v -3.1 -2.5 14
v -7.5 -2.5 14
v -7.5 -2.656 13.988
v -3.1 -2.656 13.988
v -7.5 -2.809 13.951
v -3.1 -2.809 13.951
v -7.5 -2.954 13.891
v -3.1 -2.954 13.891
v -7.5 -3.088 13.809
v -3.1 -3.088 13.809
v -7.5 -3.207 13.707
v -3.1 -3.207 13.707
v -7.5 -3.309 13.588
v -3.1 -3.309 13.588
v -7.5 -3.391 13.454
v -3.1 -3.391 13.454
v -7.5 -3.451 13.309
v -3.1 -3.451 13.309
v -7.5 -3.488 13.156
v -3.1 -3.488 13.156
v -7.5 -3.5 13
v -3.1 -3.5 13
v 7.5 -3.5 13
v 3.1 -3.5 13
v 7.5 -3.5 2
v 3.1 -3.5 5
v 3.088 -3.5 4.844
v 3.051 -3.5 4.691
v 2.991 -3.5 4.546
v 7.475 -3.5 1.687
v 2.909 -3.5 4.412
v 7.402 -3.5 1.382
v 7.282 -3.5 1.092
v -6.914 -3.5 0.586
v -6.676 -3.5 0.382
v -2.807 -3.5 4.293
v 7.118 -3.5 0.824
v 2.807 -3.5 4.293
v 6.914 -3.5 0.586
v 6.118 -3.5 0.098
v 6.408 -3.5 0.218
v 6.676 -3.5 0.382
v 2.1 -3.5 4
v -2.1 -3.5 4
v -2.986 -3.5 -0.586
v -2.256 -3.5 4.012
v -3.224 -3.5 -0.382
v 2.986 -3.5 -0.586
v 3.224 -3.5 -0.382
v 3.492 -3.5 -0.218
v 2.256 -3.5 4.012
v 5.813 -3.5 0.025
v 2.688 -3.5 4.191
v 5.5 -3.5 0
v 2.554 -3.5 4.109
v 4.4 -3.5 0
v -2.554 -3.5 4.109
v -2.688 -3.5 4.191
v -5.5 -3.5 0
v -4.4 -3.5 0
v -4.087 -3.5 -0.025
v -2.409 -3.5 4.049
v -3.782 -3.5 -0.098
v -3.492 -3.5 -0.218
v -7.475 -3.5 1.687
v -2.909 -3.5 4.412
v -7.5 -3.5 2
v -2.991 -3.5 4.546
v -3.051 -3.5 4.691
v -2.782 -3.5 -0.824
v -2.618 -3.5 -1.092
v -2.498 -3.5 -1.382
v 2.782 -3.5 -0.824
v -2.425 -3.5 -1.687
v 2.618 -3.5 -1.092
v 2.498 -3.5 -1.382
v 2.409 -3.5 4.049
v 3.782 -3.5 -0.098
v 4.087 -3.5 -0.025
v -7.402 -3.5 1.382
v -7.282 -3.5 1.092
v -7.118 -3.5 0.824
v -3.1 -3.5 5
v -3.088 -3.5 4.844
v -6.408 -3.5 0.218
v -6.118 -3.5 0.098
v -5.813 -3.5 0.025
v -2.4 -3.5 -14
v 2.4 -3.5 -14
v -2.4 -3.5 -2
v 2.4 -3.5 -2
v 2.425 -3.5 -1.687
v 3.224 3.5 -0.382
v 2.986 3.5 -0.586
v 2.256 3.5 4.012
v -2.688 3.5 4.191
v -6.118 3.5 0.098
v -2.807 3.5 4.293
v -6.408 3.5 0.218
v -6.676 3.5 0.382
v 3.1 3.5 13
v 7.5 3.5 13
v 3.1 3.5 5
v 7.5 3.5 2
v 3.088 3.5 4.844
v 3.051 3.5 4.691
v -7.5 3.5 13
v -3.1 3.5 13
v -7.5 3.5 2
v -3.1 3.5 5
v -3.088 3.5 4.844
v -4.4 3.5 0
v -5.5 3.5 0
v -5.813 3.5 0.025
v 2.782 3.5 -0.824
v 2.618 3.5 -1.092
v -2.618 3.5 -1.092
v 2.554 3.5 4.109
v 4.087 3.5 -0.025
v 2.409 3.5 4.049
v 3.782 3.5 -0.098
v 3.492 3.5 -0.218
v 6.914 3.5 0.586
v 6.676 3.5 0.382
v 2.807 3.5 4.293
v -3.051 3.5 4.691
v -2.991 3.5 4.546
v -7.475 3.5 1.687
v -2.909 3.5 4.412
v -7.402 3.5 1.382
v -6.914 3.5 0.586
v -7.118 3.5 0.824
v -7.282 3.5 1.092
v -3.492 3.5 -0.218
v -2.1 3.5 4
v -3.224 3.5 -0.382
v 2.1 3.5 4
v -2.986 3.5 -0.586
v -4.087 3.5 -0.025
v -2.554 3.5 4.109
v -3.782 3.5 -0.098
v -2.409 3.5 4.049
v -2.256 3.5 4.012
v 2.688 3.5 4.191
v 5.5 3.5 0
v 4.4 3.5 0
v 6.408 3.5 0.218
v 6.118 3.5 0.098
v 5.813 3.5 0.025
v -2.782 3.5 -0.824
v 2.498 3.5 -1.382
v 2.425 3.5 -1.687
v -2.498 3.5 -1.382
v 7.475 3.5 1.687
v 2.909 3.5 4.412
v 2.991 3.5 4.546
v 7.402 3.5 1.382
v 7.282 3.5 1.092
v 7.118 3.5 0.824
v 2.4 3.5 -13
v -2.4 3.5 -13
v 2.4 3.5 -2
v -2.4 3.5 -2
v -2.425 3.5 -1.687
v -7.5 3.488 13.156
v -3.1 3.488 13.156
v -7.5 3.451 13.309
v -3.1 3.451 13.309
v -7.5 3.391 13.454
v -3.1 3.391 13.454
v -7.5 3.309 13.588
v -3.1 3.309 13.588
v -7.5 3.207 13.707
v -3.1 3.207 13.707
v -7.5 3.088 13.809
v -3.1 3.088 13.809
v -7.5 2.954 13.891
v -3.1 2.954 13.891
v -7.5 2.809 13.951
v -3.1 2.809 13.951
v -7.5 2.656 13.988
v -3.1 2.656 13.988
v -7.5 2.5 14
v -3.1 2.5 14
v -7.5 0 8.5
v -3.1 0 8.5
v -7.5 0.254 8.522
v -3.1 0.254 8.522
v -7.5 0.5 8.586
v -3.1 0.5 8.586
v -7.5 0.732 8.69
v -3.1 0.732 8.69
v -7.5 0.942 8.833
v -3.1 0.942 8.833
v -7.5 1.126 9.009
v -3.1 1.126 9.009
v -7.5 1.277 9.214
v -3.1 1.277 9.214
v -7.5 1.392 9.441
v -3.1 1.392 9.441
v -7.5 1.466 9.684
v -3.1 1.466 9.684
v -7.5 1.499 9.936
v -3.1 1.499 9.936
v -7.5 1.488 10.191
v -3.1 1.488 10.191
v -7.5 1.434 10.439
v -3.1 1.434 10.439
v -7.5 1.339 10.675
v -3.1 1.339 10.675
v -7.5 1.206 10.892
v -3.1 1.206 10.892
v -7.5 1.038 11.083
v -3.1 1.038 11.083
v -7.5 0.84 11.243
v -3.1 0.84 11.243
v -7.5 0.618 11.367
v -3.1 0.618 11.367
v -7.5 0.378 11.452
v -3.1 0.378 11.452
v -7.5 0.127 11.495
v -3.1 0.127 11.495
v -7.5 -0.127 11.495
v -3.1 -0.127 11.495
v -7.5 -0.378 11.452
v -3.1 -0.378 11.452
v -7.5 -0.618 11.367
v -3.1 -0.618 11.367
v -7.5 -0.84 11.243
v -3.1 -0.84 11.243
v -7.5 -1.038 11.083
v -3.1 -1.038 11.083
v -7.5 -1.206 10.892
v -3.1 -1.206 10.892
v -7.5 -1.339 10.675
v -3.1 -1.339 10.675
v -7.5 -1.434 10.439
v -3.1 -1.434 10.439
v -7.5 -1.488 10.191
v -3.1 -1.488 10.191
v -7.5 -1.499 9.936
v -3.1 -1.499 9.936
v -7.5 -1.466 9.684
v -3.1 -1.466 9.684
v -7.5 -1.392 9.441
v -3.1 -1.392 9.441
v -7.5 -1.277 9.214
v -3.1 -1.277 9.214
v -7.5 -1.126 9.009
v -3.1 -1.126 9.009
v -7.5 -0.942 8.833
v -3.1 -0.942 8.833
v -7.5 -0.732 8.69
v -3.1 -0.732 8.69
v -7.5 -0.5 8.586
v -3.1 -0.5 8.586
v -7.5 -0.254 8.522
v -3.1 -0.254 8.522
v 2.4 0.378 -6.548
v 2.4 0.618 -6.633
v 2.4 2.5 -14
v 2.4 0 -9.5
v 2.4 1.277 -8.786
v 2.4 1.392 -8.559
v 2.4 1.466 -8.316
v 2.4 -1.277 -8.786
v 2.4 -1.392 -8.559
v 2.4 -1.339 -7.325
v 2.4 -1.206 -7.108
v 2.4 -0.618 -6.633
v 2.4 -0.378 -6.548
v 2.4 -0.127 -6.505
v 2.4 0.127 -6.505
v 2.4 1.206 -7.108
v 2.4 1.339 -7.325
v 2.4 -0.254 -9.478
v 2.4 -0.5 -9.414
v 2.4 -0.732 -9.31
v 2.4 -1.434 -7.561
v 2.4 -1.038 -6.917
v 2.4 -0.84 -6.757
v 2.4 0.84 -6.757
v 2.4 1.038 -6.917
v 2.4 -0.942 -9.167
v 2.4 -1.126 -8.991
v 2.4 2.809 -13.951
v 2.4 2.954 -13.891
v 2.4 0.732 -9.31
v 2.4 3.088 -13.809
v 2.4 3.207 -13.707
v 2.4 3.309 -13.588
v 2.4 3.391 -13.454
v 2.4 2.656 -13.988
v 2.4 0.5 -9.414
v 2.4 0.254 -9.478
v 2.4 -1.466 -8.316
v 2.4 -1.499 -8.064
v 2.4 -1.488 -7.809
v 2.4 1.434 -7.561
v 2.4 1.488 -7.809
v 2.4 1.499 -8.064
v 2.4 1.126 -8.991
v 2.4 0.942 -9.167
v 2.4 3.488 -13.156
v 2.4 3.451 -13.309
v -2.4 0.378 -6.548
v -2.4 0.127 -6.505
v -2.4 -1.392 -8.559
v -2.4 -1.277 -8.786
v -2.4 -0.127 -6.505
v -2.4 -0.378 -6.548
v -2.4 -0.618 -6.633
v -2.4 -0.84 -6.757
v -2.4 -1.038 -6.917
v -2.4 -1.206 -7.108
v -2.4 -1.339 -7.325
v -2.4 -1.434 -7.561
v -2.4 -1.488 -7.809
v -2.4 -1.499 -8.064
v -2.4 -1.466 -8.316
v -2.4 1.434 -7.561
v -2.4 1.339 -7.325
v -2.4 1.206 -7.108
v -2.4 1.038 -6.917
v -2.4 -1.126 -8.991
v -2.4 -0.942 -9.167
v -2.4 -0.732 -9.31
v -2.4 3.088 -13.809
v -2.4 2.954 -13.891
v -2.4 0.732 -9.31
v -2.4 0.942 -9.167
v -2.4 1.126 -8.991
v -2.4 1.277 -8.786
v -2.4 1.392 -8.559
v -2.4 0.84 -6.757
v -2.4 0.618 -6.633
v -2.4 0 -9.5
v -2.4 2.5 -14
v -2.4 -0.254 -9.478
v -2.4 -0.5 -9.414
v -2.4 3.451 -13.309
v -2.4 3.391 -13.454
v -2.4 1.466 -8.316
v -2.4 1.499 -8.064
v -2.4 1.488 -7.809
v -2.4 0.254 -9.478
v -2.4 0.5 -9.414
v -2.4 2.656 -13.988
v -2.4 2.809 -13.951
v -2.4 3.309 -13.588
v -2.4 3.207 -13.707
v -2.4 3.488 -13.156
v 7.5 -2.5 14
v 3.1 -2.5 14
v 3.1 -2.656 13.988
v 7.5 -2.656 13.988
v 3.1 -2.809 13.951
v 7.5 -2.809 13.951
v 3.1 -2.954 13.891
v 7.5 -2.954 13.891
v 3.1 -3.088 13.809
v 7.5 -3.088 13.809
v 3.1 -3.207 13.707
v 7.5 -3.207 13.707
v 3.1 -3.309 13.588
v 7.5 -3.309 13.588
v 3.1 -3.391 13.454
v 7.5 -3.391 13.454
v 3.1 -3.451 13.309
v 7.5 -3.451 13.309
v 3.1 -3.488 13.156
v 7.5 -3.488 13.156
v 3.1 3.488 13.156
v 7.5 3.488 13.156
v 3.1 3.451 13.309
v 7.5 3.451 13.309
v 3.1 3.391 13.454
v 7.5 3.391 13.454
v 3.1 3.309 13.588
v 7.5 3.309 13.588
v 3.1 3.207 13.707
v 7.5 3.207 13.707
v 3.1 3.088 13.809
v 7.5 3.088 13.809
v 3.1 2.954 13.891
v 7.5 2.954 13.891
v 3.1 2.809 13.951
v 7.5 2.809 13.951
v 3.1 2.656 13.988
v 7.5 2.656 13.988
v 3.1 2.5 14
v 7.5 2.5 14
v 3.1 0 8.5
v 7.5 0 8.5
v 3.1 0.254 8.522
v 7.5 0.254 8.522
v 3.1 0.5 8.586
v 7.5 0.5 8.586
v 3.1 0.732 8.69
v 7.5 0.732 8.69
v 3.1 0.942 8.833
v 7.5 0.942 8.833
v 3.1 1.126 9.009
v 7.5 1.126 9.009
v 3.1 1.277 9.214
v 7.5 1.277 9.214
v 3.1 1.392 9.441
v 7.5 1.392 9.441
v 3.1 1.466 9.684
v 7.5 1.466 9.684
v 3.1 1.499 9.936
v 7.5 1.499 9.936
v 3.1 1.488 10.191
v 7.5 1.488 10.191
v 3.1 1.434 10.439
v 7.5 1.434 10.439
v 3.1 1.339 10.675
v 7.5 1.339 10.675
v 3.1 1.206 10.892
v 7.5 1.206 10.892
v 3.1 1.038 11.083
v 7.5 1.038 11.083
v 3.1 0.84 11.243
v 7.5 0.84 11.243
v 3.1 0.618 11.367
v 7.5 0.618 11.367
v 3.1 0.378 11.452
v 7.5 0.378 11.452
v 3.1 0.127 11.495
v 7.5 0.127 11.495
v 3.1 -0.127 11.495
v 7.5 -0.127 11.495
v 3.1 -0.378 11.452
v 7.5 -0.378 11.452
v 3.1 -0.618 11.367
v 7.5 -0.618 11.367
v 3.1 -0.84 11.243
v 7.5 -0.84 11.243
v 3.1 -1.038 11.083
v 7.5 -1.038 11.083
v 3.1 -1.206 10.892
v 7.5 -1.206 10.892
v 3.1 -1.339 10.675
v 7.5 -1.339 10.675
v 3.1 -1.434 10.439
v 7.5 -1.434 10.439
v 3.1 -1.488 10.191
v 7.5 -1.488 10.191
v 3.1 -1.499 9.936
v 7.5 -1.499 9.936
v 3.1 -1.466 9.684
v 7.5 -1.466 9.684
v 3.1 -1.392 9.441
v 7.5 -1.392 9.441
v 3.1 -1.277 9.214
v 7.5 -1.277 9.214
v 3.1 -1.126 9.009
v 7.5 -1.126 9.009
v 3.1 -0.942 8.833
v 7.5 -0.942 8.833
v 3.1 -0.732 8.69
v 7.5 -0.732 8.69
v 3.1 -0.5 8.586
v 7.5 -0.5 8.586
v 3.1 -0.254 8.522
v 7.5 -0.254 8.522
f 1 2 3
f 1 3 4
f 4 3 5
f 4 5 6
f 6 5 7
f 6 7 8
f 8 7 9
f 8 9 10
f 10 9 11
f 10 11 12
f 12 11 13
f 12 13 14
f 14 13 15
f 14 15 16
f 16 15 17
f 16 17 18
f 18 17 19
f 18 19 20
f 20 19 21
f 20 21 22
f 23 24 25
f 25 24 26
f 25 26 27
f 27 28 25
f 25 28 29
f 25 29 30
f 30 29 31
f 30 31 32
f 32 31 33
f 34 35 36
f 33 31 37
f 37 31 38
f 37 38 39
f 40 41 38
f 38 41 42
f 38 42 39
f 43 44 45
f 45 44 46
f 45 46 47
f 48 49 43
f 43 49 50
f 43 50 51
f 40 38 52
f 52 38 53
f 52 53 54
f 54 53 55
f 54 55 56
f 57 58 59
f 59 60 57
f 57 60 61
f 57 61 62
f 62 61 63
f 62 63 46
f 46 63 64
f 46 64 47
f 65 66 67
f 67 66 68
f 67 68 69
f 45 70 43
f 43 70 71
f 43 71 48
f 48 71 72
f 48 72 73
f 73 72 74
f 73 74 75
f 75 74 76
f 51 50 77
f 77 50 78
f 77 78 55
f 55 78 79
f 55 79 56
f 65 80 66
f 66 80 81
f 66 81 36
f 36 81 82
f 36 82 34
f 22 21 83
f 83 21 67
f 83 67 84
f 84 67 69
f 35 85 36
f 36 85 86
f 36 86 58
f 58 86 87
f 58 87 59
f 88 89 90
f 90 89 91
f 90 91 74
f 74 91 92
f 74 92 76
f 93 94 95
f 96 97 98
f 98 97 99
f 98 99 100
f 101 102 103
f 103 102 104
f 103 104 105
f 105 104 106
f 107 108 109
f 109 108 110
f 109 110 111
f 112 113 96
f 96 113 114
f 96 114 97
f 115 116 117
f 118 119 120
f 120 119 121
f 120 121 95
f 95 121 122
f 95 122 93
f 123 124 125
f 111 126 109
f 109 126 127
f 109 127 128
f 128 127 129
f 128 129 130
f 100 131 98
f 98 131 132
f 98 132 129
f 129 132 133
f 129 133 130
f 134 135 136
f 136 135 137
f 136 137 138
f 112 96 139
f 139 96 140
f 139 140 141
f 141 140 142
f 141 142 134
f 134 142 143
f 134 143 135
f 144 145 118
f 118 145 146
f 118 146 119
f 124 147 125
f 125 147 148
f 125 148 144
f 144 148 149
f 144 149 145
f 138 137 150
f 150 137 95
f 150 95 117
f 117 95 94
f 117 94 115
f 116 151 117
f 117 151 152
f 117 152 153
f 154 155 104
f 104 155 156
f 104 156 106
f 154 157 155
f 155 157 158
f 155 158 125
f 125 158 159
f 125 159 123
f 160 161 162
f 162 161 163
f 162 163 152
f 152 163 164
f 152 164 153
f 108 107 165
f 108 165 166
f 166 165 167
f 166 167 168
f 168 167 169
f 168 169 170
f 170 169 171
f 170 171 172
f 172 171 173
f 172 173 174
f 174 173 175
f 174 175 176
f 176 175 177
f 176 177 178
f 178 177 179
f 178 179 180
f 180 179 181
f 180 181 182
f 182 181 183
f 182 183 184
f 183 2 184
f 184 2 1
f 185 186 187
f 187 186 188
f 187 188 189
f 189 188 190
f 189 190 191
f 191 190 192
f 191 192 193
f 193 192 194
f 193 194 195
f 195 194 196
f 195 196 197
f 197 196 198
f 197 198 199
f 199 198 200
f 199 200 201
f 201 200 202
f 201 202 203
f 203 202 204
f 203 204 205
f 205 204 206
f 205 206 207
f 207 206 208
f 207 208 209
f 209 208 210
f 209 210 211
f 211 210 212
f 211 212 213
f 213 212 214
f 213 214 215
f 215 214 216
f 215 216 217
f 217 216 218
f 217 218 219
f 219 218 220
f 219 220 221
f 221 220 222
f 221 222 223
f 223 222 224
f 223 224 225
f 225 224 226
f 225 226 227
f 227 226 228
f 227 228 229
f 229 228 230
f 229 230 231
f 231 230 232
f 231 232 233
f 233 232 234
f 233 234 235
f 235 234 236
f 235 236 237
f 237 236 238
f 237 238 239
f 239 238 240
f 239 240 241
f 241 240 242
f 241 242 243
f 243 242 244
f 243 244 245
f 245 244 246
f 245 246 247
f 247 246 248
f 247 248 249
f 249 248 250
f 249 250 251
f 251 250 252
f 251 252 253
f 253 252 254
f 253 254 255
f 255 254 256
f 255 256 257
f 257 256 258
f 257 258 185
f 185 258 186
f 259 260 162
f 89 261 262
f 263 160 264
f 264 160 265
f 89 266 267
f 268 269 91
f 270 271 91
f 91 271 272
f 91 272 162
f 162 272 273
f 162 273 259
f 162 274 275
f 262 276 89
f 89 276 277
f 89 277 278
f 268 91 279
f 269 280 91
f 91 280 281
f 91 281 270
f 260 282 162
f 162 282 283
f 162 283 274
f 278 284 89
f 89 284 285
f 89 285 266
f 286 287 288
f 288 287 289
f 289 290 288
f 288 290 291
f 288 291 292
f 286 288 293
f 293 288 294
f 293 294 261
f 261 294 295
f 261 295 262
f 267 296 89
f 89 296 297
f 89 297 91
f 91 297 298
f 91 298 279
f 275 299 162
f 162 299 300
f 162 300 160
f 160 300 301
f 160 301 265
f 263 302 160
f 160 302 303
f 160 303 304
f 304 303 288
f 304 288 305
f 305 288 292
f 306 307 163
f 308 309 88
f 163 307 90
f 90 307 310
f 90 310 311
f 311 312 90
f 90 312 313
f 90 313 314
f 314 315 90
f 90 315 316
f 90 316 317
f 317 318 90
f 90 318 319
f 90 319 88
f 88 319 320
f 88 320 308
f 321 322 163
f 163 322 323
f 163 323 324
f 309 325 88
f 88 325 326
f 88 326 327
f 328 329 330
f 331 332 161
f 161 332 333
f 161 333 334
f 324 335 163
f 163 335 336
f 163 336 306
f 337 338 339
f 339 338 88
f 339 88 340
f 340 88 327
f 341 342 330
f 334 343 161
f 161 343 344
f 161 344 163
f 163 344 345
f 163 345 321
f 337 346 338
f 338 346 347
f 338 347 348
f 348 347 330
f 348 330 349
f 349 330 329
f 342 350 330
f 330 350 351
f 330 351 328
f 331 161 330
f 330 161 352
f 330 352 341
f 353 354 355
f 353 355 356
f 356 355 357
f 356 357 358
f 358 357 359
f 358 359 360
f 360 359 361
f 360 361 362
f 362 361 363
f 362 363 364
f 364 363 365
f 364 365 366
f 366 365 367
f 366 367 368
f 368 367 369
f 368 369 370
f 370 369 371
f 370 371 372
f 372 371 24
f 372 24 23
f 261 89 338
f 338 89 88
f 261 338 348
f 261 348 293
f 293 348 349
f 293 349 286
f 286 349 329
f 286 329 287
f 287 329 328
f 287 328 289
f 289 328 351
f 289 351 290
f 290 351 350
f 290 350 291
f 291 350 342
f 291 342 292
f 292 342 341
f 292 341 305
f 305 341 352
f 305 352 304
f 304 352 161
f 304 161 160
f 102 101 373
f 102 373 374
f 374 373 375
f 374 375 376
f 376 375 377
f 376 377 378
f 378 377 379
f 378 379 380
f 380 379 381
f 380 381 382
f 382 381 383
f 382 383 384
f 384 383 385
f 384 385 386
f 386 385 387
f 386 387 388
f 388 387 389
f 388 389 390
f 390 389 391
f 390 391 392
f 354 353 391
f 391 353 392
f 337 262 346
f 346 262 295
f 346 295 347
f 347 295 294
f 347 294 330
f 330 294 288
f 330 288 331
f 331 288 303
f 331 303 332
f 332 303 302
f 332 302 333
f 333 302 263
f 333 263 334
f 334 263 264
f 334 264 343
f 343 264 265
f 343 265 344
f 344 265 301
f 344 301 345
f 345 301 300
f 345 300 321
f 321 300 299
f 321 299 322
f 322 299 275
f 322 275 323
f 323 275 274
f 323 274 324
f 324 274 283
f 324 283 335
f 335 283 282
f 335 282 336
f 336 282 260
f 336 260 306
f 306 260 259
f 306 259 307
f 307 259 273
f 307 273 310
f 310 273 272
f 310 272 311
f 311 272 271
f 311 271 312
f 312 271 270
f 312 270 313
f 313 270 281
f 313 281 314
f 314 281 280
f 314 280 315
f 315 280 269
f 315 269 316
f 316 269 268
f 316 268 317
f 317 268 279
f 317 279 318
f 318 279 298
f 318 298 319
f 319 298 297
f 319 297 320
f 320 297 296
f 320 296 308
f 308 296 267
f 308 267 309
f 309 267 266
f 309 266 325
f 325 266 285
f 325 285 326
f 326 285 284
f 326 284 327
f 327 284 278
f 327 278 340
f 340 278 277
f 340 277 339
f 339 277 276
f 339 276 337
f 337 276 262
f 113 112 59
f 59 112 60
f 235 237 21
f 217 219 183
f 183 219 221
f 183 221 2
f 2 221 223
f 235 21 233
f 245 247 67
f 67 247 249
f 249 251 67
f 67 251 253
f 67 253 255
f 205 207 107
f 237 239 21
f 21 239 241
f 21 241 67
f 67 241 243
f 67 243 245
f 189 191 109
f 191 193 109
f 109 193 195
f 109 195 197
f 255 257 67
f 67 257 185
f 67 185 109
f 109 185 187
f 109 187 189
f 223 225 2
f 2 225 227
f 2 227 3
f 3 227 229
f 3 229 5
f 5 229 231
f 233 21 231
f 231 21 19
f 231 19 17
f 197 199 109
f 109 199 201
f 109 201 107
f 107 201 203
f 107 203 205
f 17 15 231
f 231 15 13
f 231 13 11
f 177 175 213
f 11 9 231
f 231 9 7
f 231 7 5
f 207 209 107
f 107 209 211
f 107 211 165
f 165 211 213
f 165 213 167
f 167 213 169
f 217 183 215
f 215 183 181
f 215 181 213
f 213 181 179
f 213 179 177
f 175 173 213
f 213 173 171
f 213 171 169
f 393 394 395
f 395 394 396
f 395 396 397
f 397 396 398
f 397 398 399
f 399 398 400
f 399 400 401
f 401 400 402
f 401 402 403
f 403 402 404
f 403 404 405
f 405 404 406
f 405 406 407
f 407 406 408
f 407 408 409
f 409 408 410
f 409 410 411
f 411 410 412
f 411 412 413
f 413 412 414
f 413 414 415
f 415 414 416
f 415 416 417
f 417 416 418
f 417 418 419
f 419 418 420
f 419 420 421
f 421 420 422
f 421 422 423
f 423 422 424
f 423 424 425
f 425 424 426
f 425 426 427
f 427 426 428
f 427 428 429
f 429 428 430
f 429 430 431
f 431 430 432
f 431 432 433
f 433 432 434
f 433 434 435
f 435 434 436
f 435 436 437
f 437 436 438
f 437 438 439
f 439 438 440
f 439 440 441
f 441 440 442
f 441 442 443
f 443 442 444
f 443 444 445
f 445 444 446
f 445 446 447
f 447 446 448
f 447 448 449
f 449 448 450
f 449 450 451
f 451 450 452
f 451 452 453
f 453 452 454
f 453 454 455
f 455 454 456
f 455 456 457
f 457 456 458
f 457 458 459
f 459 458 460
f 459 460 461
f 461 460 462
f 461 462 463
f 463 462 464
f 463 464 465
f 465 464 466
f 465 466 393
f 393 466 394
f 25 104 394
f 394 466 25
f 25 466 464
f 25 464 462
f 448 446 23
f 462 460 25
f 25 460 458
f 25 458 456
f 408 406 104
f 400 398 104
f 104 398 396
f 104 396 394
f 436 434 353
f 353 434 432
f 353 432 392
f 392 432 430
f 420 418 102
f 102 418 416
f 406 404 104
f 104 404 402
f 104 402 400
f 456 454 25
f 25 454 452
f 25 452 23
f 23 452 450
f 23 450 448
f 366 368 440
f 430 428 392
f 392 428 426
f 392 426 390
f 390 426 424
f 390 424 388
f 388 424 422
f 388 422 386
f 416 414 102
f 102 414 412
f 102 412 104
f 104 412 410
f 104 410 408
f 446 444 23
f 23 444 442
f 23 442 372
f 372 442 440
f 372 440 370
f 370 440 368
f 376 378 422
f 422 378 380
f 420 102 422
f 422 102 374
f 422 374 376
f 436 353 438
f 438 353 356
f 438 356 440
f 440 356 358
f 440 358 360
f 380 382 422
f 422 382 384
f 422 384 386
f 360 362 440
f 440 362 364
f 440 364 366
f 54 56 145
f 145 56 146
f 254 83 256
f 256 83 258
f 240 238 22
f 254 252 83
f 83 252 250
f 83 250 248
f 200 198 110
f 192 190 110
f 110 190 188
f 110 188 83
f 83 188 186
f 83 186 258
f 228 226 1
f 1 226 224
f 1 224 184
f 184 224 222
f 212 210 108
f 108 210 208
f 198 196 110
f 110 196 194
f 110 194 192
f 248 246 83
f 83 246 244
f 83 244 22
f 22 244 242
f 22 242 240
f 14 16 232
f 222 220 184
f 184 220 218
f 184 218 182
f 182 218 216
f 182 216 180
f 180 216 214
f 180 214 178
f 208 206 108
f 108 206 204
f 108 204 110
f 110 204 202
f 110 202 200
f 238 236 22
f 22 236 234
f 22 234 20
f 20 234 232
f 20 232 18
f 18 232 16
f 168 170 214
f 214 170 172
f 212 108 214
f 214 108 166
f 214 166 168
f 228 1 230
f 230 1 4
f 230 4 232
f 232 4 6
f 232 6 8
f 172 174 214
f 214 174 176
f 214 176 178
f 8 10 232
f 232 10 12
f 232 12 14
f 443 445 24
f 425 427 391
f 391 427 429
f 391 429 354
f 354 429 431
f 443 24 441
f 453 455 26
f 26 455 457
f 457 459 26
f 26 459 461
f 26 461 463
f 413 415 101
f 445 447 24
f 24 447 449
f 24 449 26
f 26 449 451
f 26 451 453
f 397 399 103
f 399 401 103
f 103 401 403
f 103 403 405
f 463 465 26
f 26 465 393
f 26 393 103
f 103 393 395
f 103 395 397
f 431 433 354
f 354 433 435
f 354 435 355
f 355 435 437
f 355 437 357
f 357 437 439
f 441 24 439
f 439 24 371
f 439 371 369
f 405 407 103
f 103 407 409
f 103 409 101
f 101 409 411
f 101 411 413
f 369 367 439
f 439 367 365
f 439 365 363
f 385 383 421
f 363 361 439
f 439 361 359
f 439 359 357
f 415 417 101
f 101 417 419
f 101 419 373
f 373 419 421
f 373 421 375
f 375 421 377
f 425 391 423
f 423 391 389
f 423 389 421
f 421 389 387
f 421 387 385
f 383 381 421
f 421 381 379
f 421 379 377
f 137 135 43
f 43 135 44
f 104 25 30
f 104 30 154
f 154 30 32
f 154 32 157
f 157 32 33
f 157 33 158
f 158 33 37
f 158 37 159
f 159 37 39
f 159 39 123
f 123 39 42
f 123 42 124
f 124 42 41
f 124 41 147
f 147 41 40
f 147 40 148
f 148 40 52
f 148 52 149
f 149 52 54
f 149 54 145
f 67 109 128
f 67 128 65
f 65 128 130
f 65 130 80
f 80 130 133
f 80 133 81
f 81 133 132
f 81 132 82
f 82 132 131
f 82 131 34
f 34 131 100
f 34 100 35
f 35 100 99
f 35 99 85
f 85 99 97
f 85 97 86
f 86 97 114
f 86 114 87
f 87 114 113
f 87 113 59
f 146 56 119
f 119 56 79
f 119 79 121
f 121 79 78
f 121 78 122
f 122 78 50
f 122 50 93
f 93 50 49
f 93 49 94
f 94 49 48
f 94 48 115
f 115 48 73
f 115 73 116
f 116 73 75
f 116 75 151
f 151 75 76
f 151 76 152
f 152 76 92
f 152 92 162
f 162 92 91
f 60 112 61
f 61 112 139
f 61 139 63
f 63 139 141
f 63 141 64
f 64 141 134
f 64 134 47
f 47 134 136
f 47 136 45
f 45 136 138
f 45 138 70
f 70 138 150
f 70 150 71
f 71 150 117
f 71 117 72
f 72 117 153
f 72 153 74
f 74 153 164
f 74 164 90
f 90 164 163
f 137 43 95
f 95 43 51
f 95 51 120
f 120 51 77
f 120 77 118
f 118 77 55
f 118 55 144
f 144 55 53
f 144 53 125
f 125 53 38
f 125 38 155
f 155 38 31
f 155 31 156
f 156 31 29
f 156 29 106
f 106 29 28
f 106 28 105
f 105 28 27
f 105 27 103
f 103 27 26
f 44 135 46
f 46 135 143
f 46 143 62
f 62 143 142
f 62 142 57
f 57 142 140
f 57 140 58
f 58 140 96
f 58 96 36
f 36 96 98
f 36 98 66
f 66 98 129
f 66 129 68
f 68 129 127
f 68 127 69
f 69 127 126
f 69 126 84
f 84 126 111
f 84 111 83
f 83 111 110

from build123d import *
from build123d.topology import SkipClean

# Parameters (mm, degrees)
SALIENTE_EXTRUIR1_DEPTH    = 2.4
CORTAR_EXTRUIR1_DEPTH      = 15.629080627
CORTAR_EXTRUIR1_DEPTH_BACK = 15.629080627
CROQUIS2_R                 = 1.5
CROQUIS3_R                 = 1.5
SALIENTE_EXTRUIR2_DEPTH    = 7.5
CORTAR_EXTRUIR2_DEPTH      = 3.1
REDONDEO1_R                = 2
REDONDEO2_R                = 1


with BuildPart() as part:
    # Croquis1 → Saliente-Extruir1 (new, symmetric)
    with BuildSketch(Plane(origin=(0, 0, 0), x_dir=(0, 0, -1), z_dir=(1, 0, 0))):
        with BuildLine():
            Line((-13, 3.5), (13, 3.5))
            ThreePointArc((13, 3.5), (13.707106781, 3.207106781), (14, 2.5))
            Line((14, 2.5), (14, -2.5))
            Line((14, -2.5), (14, -3.5))
            Line((14, -3.5), (13, -3.5))
            Line((13, -3.5), (-13, -3.5))
            ThreePointArc((-13, -3.5), (-13.707106781, -3.207106781), (-14, -2.5))
            Line((-14, -2.5), (-14, 2.5))
            ThreePointArc((-14, 2.5), (-13.707106781, 3.207106781), (-13, 3.5))
        make_face()
    extrude(amount=SALIENTE_EXTRUIR1_DEPTH, both=True)

    # Croquis2 → Cortar-Extruir1 (cut, two sides: drawn at the far end of the back side and taken through both)
    with BuildSketch(Plane(origin=(0, 0, 0), x_dir=(0, 0, -1), z_dir=(1, 0, 0)).offset(-CORTAR_EXTRUIR1_DEPTH_BACK)):
        with Locations((-10, 0)):
            Circle(CROQUIS2_R)
        with Locations((8, 0)):
            Circle(CROQUIS2_R)
    extrude(amount=CORTAR_EXTRUIR1_DEPTH + CORTAR_EXTRUIR1_DEPTH_BACK, mode=Mode.SUBTRACT)

    # Croquis3 → Saliente-Extruir2 (add, symmetric)
    with SkipClean():  # the faces are left unmerged after this step: merging them gives an invalid solid
        with BuildSketch(Plane(origin=(0, 0, 0), x_dir=(0, 0, -1), z_dir=(1, 0, 0))):
            with BuildLine():
                Line((-14, 2.5), (-14, -2.5))
                ThreePointArc((-14, -2.5), (-13.707106781, -3.207106781), (-13, -3.5))
                Line((-13, -3.5), (0, -3.5))
                Line((0, -3.5), (0, 3.5))
                Line((0, 3.5), (-13, 3.5))
                ThreePointArc((-13, 3.5), (-13.707106781, 3.207106781), (-14, 2.5))
            make_face()
            with Locations((-10, 0)):
                Circle(CROQUIS3_R, mode=Mode.SUBTRACT)
        extrude(amount=SALIENTE_EXTRUIR2_DEPTH, both=True)
    add(part.part.scale(1), mode=Mode.REPLACE)  # the faces are merged on a copy

    # Croquis4 → Cortar-Extruir2 (cut, symmetric)
    with BuildSketch(Plane(origin=(0, 0, 0), x_dir=(0, 0, -1), z_dir=(1, 0, 0))):
        with BuildLine():
            Line((-13, 3.5), (-4, 3.5))
            Line((-4, 3.5), (-4, -3.5))
            Line((-4, -3.5), (-13, -3.5))
            ThreePointArc((-13, -3.5), (-13.707106781, -3.207106781), (-14, -2.5))
            Line((-14, -2.5), (-14, 2.5))
            ThreePointArc((-14, 2.5), (-13.707106781, 3.207106781), (-13, 3.5))
        make_face()
    extrude(amount=CORTAR_EXTRUIR2_DEPTH, both=True, mode=Mode.SUBTRACT)

    # Redondeo1
    redondeo1_edges = [part.edges().sort_by_distance(p)[0] for p in [
        (-2.4, 0, 0),
        (2.4, 0, 0),
        (-7.5, 0, 0),
        (7.5, 0, 0),
    ]]
    fillet(redondeo1_edges, radius=REDONDEO1_R)

    # Redondeo2
    redondeo2_edges = [part.edges().sort_by_distance(p)[0] for p in [
        (3.1, 0, 4),
        (-3.1, 0, 4),
    ]]
    fillet(redondeo2_edges, radius=REDONDEO2_R)


solid = part.part
